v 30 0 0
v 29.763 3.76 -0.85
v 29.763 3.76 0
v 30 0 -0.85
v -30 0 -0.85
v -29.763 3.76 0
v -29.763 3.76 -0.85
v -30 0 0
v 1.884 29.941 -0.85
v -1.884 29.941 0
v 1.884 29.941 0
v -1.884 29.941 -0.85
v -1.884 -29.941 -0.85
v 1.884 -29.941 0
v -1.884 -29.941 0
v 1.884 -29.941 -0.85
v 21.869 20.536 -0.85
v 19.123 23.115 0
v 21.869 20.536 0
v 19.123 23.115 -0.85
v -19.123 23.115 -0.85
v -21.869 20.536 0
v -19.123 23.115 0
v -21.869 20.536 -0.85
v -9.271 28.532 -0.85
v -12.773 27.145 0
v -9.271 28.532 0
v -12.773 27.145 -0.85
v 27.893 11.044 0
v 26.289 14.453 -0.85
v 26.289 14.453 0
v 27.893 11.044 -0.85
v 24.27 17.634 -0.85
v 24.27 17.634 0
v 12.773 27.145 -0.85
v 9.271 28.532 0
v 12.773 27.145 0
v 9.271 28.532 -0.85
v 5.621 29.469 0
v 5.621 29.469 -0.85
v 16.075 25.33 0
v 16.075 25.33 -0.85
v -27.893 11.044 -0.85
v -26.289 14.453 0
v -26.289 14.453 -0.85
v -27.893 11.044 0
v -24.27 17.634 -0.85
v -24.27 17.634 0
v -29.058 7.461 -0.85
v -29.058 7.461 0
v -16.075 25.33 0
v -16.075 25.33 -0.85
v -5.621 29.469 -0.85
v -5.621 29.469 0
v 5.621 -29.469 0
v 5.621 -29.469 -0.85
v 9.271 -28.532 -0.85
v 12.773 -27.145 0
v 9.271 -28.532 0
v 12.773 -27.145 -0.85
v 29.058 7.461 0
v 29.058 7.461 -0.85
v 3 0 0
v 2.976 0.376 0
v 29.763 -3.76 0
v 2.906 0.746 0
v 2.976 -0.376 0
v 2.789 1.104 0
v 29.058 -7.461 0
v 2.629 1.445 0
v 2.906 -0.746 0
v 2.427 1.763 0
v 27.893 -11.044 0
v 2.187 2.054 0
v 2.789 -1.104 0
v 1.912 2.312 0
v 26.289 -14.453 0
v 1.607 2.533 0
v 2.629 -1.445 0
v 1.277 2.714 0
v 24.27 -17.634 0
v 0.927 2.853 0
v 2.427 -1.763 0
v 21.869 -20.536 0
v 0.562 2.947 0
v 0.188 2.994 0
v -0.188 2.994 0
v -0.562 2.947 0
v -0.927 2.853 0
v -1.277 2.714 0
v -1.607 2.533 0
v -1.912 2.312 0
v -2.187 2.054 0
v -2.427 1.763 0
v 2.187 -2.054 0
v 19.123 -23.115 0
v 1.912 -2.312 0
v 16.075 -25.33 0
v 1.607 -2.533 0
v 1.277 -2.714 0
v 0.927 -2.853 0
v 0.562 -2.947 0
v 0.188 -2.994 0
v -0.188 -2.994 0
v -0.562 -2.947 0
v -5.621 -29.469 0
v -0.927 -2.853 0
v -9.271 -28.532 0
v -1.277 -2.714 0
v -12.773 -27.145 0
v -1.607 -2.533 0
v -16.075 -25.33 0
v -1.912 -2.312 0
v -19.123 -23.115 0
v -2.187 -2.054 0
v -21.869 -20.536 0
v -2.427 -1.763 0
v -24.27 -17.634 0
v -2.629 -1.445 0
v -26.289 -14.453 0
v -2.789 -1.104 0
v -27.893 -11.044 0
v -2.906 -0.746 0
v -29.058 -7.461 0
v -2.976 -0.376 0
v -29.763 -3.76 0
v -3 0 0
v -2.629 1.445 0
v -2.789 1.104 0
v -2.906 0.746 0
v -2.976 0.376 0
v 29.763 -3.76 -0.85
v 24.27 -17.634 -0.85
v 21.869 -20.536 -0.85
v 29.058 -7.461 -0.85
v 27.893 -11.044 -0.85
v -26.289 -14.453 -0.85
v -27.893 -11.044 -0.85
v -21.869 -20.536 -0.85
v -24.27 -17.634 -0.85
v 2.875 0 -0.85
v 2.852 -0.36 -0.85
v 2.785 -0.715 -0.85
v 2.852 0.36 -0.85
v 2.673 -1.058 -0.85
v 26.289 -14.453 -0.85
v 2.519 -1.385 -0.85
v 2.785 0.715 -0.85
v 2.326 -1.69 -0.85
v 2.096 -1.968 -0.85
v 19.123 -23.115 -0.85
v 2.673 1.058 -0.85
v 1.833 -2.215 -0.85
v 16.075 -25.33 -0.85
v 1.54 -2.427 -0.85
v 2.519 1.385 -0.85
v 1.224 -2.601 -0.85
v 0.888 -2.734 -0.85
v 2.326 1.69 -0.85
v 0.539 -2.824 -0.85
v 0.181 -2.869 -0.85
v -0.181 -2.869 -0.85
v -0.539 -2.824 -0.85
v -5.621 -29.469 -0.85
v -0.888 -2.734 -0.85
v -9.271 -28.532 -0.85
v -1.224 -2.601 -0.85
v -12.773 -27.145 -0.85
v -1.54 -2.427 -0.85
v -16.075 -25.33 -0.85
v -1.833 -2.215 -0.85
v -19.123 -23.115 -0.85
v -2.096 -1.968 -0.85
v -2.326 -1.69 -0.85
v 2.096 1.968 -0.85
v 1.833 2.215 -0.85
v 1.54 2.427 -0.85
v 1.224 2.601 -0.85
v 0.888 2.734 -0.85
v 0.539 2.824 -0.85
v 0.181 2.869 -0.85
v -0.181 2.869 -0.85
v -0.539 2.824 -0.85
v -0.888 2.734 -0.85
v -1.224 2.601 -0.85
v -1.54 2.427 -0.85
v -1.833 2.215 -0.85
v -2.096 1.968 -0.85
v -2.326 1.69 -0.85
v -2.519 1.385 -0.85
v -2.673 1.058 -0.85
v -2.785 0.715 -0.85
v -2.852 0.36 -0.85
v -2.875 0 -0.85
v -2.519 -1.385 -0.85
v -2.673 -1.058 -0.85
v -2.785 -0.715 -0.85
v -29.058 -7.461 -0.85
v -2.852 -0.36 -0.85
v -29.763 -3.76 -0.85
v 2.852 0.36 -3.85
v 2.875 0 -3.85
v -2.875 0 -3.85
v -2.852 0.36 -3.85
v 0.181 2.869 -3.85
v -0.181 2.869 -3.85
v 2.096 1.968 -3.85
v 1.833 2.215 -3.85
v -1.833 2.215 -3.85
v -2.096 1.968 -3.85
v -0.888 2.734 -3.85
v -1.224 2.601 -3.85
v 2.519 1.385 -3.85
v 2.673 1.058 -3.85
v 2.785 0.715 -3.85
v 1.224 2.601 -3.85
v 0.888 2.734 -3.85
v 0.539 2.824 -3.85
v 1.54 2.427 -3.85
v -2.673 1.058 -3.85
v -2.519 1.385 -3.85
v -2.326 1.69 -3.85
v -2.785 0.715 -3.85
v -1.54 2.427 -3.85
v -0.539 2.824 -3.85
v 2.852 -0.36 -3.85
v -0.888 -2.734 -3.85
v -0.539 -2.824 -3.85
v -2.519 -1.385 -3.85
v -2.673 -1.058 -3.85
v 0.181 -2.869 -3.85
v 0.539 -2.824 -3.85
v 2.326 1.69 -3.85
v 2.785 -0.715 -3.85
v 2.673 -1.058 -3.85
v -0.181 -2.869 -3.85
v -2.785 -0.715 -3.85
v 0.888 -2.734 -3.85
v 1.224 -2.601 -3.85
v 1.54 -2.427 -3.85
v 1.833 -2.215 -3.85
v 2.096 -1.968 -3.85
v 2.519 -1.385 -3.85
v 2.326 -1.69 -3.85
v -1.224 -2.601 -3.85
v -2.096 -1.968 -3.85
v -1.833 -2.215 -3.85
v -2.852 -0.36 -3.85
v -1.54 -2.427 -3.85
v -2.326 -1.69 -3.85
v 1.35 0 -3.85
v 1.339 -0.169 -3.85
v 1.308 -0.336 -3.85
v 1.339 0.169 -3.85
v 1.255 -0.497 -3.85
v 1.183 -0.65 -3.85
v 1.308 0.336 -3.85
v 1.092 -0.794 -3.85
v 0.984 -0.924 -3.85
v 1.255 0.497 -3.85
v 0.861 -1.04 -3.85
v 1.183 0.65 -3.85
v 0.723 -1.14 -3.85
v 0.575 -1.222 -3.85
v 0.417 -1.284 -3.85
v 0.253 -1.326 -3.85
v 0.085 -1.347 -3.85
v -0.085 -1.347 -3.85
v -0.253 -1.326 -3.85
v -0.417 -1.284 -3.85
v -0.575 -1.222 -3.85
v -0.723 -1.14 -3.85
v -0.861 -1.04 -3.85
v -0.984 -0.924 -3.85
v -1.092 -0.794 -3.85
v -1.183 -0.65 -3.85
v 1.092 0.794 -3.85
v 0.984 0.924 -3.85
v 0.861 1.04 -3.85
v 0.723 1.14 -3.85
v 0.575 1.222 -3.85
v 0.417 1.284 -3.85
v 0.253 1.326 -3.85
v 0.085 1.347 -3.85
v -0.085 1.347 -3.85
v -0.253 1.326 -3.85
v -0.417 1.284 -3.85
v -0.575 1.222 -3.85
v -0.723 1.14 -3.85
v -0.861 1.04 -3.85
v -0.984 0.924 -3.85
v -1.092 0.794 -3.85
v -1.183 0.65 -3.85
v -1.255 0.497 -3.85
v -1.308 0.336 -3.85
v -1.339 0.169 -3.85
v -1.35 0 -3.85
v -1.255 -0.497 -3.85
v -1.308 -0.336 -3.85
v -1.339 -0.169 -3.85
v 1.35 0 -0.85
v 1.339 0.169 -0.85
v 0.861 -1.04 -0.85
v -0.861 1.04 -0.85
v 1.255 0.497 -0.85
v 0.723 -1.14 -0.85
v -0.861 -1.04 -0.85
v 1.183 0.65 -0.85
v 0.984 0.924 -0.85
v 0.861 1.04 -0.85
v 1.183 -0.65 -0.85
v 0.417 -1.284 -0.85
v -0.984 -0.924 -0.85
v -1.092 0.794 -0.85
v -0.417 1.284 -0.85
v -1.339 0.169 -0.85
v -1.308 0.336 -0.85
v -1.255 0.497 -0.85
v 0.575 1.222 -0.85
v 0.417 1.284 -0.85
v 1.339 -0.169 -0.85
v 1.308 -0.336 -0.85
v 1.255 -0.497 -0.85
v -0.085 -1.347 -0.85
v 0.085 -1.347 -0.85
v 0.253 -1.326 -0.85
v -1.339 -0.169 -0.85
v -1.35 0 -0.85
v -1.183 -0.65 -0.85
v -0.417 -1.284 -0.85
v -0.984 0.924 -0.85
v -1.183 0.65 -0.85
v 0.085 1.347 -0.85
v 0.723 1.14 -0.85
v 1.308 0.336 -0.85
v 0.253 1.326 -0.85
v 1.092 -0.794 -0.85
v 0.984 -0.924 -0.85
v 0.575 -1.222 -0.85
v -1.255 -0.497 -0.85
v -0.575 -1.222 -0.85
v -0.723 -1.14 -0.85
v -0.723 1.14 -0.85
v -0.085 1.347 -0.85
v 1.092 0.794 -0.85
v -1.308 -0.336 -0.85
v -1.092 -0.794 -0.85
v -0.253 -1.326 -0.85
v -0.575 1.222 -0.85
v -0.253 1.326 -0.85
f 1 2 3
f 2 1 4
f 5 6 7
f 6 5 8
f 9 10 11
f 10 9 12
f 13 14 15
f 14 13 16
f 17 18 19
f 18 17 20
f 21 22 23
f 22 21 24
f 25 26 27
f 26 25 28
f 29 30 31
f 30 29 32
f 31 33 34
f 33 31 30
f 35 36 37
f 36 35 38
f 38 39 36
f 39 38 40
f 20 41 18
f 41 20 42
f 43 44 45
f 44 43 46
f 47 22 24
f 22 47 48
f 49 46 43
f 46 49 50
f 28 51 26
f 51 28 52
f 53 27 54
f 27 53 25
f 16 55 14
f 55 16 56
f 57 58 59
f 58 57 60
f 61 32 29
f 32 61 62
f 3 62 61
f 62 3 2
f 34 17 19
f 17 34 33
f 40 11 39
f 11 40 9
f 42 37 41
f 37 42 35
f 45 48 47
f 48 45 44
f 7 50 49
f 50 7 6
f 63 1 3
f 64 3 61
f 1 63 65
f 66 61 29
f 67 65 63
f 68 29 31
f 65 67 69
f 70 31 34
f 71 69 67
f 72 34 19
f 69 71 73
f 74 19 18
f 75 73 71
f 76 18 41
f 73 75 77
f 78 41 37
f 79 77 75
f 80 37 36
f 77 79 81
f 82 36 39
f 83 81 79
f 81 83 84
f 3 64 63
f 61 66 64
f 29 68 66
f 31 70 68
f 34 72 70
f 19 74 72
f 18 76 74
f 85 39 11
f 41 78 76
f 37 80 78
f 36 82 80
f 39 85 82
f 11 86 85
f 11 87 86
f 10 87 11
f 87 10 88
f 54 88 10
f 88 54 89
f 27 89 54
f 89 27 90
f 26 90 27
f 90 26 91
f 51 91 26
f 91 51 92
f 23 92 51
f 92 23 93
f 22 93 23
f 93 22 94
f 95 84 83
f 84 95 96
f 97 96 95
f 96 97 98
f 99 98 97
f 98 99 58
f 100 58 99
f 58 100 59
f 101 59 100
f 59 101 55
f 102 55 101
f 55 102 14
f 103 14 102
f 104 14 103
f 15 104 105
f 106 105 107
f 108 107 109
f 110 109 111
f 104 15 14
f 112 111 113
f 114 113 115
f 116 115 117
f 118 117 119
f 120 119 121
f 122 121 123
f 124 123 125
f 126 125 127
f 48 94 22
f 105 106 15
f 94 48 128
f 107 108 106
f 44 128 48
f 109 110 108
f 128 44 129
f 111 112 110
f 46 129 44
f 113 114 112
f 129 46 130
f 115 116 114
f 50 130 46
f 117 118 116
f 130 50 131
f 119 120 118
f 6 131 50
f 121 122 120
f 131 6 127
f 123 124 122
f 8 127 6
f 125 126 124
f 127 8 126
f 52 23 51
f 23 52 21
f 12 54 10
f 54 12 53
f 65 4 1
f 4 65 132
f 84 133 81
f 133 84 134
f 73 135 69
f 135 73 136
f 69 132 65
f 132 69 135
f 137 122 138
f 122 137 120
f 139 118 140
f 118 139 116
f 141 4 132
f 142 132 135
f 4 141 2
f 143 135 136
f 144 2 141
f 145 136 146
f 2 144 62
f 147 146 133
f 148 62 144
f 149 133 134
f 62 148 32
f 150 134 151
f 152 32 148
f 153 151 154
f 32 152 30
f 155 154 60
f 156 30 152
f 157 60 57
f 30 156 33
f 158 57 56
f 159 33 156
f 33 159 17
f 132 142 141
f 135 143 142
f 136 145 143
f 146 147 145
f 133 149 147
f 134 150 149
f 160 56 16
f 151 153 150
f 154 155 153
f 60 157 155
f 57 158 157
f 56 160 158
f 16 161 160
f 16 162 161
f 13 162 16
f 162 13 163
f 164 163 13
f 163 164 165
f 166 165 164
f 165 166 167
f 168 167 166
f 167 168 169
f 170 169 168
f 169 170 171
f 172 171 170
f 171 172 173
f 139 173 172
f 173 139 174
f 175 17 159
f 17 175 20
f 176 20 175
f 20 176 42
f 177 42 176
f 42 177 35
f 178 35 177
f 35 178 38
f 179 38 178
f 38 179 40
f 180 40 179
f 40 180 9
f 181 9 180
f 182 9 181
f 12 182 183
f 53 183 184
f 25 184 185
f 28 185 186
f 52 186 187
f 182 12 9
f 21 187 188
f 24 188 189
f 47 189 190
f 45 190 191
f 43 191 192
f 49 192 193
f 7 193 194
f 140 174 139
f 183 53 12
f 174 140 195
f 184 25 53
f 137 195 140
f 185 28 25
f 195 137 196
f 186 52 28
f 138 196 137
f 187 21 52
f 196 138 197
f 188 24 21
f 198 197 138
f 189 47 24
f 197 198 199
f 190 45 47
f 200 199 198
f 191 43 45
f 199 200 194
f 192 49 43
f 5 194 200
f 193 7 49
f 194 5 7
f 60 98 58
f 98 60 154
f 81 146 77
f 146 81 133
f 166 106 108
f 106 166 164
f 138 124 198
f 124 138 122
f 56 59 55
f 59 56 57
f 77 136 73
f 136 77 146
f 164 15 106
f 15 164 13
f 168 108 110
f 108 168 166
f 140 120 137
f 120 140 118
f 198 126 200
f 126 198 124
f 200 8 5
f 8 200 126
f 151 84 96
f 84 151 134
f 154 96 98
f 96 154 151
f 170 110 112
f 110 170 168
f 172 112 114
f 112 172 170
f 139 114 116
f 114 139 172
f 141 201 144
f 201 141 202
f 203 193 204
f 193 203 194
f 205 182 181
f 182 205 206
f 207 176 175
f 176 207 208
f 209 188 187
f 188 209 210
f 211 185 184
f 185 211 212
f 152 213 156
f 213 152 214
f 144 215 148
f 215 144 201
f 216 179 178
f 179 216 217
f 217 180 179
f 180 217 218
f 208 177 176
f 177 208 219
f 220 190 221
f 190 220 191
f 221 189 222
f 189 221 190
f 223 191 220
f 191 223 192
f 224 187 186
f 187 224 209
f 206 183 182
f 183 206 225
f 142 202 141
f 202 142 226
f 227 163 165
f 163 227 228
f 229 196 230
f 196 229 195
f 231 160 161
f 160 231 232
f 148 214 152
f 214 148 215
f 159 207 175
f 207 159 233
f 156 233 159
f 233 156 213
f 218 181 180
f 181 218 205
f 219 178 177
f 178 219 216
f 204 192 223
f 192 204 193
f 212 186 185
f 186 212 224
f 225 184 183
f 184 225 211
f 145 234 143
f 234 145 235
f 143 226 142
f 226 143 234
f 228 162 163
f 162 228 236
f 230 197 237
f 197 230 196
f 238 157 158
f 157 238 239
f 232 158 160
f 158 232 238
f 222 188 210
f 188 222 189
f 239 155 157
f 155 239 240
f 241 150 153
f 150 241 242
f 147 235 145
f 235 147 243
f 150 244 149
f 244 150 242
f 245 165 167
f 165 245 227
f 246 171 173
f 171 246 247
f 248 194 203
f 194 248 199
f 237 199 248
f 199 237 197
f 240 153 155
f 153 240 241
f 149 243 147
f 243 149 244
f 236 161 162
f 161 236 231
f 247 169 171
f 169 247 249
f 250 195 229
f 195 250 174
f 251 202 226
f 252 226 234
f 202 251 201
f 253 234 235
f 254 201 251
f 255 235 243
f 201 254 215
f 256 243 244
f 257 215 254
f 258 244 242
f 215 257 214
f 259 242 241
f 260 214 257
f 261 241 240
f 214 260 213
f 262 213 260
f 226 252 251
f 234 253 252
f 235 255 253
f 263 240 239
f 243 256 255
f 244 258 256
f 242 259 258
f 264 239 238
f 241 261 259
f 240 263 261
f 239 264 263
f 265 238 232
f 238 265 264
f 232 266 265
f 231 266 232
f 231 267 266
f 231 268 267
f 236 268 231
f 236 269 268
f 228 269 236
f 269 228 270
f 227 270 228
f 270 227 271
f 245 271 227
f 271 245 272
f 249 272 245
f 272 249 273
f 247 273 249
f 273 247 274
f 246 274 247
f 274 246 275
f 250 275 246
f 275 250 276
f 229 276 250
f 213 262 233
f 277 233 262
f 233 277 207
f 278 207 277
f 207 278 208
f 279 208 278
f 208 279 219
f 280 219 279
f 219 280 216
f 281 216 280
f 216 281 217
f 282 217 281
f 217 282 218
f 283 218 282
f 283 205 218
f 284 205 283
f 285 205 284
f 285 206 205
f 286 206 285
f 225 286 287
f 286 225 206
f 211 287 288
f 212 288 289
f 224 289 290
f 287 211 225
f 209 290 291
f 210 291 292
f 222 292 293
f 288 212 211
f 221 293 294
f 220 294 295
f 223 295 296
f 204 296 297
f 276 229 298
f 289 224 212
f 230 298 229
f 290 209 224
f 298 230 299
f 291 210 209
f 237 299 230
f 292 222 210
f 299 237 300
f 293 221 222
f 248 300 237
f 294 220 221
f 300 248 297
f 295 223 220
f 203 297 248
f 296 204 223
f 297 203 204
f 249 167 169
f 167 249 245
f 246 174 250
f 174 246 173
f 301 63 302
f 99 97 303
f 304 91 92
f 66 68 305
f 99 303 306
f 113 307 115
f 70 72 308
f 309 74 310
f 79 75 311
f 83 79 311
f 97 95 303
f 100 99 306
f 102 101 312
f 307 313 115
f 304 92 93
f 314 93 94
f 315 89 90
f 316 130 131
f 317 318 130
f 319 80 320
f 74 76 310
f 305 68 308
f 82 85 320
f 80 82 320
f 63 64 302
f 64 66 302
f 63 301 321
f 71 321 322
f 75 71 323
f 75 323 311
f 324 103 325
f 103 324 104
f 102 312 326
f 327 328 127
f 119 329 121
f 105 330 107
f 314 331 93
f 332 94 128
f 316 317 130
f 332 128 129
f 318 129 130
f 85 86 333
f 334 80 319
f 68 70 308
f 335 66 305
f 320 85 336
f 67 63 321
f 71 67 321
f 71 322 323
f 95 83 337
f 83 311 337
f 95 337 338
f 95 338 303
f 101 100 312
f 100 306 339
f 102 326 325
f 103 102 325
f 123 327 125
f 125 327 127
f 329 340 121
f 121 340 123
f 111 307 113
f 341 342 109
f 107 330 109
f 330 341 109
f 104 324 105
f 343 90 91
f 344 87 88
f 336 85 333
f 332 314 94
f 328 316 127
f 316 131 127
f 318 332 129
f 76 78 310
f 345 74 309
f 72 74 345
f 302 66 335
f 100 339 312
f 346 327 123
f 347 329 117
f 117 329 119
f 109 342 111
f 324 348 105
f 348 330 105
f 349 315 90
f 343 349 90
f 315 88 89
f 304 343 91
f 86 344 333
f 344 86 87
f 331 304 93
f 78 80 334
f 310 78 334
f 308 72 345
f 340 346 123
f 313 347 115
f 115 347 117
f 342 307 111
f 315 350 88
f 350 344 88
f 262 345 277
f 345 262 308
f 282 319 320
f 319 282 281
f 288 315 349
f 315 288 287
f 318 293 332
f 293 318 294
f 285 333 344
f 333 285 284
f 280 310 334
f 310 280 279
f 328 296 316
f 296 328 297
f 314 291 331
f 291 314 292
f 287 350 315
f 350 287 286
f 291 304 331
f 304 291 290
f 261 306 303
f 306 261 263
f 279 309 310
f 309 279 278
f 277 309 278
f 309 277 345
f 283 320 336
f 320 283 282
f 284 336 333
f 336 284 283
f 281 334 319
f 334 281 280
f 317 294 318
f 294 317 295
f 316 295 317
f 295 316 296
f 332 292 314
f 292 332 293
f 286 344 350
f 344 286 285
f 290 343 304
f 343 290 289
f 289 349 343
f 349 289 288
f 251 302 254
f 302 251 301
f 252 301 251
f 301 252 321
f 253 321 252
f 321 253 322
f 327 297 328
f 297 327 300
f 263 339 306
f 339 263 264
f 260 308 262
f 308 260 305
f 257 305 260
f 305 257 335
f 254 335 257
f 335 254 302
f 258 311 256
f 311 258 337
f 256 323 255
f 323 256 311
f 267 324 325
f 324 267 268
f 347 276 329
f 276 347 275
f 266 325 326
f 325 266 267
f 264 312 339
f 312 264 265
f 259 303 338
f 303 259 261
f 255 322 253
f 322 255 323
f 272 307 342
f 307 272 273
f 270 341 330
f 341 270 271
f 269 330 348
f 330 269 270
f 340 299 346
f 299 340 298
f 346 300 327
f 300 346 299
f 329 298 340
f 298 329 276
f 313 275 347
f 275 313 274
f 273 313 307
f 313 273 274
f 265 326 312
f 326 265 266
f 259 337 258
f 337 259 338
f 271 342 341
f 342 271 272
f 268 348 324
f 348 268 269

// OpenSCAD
$fn = 50;

difference() {
	union() {
		translate(v = [0, 0, -0.85]) {
			cylinder(h = 0.85, r = 30.0);
		}
		#translate(v = [0, 0, -3.85]) {
			cylinder(h = 3.85, r = 2.875);
		}
	}
	union() {
		translate(v = [0, 0, 0]) {
			rotate(a = [0, 0, 0]) {
				difference() {
					union() {
						translate(v = [0, 0, -3.85]) {
							cylinder(h = 3.85, r = 1.0);
						}
						translate(v = [0, 0, -0.85]) {
							cylinder(h = 0.85, r1 = 1.35, r2 = 3.0);
						}
						translate(v = [0, 0, -3.85]) {
							cylinder(h = 3.85, r = 1.35);
						}
						translate(v = [0, 0, -3.85]) {
							cylinder(h = 3.85, r = 1.0);
						}
					}
					union();
				}
			}
		}
	}
}
